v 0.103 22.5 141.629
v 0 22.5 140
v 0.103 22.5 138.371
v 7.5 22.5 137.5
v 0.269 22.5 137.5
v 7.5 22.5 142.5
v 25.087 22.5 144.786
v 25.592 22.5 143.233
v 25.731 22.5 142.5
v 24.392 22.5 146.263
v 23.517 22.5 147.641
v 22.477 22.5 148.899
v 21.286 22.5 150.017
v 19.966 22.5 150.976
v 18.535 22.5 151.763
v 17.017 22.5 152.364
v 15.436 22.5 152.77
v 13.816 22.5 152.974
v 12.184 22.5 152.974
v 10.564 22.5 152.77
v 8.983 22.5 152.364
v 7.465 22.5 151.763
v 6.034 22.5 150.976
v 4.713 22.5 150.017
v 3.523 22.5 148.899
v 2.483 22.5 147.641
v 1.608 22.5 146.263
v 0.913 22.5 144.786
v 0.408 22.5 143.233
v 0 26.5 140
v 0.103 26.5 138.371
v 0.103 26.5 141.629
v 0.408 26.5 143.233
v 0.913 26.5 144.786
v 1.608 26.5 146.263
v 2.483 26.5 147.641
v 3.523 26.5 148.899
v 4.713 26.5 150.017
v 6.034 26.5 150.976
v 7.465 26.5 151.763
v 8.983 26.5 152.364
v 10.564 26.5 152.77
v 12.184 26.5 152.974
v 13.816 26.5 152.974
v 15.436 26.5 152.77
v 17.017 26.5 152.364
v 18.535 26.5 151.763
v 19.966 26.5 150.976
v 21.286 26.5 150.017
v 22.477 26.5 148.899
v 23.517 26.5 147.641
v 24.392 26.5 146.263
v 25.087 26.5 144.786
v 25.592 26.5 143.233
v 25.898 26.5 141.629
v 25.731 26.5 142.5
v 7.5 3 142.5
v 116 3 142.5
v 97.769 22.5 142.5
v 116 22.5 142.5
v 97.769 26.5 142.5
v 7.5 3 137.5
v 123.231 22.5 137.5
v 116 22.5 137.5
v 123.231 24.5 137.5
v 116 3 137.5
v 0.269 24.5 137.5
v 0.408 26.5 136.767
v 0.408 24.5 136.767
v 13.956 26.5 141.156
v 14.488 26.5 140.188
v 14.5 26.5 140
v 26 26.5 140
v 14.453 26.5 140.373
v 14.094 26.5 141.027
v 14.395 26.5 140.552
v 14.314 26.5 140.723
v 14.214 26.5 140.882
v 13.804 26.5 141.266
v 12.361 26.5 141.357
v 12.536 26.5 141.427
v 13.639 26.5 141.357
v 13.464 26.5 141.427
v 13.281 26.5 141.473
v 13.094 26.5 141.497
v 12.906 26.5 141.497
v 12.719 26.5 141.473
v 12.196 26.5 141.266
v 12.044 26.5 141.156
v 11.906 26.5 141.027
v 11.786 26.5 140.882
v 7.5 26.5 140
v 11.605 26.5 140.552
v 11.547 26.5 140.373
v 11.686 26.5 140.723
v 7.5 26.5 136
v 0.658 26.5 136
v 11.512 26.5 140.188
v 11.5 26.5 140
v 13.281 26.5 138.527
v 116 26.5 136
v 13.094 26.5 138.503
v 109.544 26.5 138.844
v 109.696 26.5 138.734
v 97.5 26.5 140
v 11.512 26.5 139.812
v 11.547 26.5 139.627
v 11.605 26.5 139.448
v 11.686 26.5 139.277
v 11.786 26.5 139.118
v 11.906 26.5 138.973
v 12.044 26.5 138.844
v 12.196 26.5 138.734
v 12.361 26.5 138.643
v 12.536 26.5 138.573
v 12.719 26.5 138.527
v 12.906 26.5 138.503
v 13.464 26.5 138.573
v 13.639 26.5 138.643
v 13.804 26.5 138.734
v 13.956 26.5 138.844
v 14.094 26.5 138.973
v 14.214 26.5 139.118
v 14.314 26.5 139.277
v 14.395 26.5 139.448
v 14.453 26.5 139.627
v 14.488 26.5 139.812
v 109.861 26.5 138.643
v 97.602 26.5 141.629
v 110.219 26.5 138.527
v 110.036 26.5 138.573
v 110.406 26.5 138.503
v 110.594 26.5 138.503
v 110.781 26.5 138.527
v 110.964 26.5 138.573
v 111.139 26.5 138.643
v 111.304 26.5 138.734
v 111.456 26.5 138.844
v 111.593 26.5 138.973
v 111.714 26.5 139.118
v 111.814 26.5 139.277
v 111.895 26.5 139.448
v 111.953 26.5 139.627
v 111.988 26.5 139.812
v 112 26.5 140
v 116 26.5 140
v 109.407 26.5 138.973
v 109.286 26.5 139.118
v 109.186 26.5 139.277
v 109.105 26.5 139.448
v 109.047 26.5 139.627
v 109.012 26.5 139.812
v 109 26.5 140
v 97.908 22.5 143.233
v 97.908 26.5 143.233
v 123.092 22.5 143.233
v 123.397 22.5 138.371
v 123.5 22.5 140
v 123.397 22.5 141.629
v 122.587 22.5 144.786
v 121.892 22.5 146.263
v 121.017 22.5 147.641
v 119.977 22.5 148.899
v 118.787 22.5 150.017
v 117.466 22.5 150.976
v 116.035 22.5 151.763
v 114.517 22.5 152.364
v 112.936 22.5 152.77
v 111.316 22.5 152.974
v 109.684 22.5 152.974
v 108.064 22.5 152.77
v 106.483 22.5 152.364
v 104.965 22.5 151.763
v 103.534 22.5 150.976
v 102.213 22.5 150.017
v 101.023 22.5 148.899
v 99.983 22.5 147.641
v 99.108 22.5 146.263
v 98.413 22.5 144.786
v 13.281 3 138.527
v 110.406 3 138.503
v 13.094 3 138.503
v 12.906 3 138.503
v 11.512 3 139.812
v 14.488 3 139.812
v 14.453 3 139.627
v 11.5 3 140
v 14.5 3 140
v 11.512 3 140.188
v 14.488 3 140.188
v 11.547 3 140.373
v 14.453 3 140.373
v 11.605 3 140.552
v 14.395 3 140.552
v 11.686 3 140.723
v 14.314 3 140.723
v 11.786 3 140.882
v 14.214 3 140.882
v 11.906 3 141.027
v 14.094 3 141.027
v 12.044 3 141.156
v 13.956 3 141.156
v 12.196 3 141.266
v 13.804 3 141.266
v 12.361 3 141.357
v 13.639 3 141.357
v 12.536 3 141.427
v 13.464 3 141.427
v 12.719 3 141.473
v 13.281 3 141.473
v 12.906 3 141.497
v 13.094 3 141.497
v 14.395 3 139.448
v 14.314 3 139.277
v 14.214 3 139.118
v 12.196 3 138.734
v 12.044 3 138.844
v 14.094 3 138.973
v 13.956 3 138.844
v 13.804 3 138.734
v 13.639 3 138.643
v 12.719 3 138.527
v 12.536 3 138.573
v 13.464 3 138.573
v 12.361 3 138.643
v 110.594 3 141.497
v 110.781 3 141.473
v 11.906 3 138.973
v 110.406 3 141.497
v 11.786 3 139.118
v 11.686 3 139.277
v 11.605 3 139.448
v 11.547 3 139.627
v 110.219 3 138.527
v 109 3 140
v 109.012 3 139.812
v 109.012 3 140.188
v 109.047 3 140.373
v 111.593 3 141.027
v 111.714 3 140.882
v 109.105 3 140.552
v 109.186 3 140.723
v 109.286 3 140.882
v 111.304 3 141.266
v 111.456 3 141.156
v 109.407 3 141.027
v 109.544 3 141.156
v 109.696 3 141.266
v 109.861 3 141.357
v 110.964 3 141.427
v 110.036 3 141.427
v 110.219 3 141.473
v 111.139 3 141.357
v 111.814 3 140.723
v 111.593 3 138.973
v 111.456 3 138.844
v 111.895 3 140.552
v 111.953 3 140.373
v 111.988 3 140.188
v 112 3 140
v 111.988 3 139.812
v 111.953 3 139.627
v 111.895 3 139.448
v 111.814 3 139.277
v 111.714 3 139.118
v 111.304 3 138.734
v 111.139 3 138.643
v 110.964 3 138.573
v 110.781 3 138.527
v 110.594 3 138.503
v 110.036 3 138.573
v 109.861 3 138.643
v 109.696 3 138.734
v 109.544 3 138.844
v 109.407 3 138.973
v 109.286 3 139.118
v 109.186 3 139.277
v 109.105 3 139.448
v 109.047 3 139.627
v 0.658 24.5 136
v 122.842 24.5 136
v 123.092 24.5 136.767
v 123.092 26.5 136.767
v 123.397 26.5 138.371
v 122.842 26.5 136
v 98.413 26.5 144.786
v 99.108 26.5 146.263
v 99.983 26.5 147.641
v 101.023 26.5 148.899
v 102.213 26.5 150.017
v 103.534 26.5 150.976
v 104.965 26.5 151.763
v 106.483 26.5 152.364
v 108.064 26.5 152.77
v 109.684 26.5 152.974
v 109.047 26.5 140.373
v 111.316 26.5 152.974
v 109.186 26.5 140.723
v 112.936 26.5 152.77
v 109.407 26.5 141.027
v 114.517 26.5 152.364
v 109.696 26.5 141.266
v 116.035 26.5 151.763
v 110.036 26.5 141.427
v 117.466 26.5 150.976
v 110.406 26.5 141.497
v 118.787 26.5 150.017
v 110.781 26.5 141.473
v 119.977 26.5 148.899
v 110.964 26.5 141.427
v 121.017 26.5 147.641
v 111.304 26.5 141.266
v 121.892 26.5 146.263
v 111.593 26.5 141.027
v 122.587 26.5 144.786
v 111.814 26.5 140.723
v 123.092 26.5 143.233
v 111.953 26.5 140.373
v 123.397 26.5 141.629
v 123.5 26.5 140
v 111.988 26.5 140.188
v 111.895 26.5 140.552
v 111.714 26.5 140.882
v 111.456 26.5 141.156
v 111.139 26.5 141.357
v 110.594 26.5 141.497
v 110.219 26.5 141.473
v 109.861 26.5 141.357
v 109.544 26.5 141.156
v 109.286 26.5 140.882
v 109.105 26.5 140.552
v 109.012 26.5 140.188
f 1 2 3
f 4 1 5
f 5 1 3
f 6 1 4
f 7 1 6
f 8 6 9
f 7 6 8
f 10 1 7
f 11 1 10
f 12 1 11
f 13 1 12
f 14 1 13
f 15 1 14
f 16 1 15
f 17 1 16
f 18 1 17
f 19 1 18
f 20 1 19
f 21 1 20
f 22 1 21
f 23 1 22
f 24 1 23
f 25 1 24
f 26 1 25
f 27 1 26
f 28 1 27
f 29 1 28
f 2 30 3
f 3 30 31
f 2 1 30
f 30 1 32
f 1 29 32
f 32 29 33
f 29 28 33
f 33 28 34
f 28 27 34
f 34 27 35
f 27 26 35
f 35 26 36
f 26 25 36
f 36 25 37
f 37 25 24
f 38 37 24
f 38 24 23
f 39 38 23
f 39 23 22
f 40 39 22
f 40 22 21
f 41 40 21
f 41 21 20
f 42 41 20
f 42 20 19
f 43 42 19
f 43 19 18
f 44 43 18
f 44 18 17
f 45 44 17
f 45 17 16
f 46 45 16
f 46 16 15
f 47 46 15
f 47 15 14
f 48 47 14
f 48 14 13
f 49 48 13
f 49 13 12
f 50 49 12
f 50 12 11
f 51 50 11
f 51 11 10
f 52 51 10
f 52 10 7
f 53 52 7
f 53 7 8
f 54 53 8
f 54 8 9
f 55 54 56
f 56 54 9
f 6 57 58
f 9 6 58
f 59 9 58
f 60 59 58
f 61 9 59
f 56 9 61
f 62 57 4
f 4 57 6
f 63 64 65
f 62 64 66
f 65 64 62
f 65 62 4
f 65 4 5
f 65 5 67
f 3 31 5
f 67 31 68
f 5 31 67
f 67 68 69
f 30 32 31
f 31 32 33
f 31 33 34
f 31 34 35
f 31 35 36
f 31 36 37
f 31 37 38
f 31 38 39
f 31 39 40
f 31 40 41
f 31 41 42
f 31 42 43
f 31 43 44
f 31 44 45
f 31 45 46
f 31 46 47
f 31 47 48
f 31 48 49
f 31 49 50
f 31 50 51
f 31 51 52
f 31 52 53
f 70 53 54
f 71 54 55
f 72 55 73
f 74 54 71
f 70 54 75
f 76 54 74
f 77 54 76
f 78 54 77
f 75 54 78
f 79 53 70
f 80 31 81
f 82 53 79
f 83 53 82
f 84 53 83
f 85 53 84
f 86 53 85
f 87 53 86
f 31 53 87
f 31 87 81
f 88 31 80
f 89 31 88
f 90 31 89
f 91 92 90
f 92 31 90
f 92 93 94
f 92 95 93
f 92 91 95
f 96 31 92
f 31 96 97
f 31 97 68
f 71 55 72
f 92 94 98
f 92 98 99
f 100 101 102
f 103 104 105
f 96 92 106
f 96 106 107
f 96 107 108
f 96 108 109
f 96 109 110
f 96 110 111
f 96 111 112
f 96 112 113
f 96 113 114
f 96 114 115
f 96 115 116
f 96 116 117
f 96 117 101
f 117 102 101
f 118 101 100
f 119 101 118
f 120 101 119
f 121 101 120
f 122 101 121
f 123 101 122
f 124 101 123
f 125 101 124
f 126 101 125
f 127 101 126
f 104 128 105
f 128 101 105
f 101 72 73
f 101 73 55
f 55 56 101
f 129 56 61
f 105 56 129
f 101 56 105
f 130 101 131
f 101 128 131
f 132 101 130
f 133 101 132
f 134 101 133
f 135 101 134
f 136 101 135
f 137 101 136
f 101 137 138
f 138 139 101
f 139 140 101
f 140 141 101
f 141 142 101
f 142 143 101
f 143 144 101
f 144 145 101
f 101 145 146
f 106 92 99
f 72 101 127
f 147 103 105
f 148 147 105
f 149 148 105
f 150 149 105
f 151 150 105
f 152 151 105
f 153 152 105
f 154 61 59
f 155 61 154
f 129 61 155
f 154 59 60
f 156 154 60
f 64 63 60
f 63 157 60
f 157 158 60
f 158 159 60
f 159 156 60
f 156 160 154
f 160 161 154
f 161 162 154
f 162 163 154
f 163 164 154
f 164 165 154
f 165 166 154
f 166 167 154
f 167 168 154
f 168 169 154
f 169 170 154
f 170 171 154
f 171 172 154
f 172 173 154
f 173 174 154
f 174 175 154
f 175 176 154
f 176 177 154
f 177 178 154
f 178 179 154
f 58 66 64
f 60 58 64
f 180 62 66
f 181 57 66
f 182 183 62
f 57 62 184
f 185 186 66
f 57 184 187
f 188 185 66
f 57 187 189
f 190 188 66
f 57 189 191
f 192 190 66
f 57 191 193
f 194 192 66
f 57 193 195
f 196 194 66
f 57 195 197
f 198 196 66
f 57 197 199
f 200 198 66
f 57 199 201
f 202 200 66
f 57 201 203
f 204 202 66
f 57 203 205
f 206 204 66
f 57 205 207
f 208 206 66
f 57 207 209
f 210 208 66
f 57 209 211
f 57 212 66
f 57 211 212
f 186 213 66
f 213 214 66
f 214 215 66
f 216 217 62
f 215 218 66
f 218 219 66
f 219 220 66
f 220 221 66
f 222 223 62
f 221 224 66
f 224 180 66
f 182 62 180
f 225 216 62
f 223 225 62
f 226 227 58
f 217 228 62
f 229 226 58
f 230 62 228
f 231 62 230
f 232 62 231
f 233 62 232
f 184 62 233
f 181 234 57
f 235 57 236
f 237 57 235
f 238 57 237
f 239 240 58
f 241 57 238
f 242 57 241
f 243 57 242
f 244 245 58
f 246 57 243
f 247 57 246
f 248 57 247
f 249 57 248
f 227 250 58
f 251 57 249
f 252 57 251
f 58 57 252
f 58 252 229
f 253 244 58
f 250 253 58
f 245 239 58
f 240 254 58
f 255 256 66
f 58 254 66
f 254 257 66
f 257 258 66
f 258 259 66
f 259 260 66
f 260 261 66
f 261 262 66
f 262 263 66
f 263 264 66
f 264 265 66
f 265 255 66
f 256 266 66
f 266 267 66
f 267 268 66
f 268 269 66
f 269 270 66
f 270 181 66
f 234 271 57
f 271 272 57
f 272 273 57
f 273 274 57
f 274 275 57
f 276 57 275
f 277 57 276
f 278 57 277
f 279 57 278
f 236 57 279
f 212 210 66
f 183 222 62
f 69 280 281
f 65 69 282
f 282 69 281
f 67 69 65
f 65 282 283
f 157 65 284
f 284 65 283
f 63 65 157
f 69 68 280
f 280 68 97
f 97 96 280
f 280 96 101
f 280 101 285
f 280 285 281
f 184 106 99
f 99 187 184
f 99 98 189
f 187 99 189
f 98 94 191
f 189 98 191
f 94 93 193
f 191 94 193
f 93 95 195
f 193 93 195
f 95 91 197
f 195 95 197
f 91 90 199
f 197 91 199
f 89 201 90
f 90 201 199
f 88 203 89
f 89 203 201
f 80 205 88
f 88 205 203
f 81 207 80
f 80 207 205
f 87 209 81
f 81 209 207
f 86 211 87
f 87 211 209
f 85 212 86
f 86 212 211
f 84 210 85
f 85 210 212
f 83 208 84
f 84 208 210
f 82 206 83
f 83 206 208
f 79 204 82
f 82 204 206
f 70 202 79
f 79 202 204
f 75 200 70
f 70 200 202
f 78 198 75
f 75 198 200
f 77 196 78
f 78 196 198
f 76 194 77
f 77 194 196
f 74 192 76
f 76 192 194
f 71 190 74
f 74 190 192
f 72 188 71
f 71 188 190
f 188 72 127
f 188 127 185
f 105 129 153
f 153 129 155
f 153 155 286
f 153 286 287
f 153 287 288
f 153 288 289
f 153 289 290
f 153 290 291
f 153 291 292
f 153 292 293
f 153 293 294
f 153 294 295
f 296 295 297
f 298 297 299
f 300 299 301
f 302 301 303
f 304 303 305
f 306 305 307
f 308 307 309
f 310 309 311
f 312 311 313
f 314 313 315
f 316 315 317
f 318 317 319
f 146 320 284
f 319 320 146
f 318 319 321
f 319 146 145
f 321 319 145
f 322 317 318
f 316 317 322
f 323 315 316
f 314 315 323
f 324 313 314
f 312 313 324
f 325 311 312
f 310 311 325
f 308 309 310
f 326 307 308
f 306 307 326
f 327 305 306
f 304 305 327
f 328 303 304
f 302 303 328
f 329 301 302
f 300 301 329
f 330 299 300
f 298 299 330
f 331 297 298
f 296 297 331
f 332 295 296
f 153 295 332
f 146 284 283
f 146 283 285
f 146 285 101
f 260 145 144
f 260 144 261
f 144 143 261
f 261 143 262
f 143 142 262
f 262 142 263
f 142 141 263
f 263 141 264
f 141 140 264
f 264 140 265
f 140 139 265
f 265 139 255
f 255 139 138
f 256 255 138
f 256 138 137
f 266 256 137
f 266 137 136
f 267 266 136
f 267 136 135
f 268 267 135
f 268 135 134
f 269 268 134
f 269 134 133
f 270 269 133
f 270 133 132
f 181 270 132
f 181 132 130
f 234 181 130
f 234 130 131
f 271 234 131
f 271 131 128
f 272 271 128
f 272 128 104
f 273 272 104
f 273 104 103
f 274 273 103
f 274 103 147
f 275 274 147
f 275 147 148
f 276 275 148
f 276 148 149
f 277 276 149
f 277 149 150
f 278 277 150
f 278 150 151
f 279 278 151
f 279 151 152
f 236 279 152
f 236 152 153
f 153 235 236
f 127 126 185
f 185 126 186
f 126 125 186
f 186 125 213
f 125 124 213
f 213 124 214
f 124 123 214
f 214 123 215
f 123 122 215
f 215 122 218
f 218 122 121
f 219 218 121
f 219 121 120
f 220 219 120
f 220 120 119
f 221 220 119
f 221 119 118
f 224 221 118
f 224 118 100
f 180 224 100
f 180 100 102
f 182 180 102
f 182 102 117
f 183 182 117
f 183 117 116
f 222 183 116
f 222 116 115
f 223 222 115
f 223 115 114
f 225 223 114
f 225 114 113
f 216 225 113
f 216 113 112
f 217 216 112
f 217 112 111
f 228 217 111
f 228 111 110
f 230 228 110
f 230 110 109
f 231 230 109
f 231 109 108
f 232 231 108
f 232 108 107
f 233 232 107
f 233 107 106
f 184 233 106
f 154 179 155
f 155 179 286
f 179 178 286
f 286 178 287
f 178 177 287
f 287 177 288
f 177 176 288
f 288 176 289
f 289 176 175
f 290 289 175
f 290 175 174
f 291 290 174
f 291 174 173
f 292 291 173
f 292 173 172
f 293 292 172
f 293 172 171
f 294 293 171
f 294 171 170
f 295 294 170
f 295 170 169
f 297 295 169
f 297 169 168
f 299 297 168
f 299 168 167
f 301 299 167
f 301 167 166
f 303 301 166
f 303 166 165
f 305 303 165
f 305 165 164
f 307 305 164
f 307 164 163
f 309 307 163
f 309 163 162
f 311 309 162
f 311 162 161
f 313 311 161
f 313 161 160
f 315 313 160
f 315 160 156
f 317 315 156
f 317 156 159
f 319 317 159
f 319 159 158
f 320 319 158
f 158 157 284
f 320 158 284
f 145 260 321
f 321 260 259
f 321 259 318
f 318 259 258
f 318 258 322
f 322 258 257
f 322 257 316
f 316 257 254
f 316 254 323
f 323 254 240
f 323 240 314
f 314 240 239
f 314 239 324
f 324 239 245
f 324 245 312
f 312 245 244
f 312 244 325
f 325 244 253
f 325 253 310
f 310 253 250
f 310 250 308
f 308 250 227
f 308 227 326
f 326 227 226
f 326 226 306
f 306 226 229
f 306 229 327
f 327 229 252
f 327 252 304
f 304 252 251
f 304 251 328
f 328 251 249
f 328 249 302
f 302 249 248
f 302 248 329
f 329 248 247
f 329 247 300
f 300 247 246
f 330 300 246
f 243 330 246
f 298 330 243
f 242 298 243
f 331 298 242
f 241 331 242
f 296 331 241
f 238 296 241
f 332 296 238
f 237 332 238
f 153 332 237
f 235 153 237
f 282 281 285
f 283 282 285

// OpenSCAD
$fn = 50;

ra = 20;
rv = 30;

hia = 30;
bia = 17.0;
lia = 108.5;

sp = 3;

d = 3;

h = 150;
hl = 140;
b = bia + d + 2*sp;
l = lia + d + 2*sp;


ba = 7;
la = 10;

a1 = 4 + sp;
a2 = a1 + 33;
a3 = a2 + 54;

ang = 14;


spa = 2;
da = 0.7;

ro = 5;
bk = 5;
rs = 6/2;
rsb= 3.2/2;
lo = 75;

lls = 15;
angs = 8;

Wr = 8;

rla = 10;
rli = 1.7;
rlisd = 3;

rhla = 15;

anglh = 20;

%difference(){
	
	union(){
		rotate([angs,0,0]){
			difference(){
				cube([l+2*d,b+2*d,h+2*d]);
	
				translate([d,d,d]) cube([l,b+2*d,h+2*d]);
				translate([d+lls,-d,d]) cube([l-lls*2,b+2*d,h+2*d]);
	
			}
		}
		translate([0,-rla,rla]) rotate([0,90,0]) cylinder(r=rla,h=d);
		translate([0,-rla,0]) cube([d,rla,2*rla]);
		translate([lia+sp*2+d*2,-rla,rla]) rotate([0,90,0]) cylinder(r=rla,h=d);
		translate([lia+sp*2+d*2,-rla,0]) cube([d,rla,2*rla]);
		translate([0,-rhla,+h-d]) rotate([0,90,0]) cylinder(r=rhla,h=d);
		translate([0,-rhla,+h-d]) rotate([anglh+180,0,0])cube([d,rhla,3*rhla]);
		translate([lia+sp*2+d*2,-rhla,+h-d]) rotate([0,90,0]) cylinder(r=rhla,h=d);
		translate([lia+sp*2+d*2,-rhla,+h-d]) rotate([anglh+180,0,0])cube([d,rhla,3*rhla]);

	}
	translate([-1,-rla,rla]) rotate([0,90,0]) cylinder(r=rli,h=lia+sp*2+d*3+2);
	translate([-1,-rhla,h-d]) rotate([0,90,0]) cylinder(r=rli,h=lia+sp*2+d*3+2);
	translate([d,-rhla,+h-d]) rotate([0,90,0]) cylinder(r=rhla,h=lia+sp*3);

	translate([ra/2+d,-1,hl]) rotate([90,0,0]) cylinder(r=rlisd,h=h+d+2);
	translate([lia+sp*2+d*2-ra/2,-1,hl]) rotate([90,0,0]) cylinder(r=rlisd,h=h+d+2);

	translate([-d, 0, 0]) cube([l+4*d,b+4*d,h+4*d]);
}

%difference(){
	cube([l+2*d,b+2*d,h+2*d]);
	translate([d,d,d]) cube([l,b,h+2*d]);
	translate([d+ra,-2*d,rv-0.5*d]) cube([l-2*ra,b+sp+4*d,h+2*d]);
	translate([0,0,h+2*d]) rotate([ang,0,0]) translate([-d,0,-(h+2*d)])cube([l+4*d,b+2*d,h+2*d]);
	translate([ra/2+d,d+1,hl]) rotate([90,0,0]) cylinder(r=rli,h=d+2);
	translate([lia+sp*2+d*2-ra/2,d+1,hl]) rotate([90,0,0]) cylinder(r=rli,h=d+2);

	minkowski(){
		translate([2*d+Wr,2*d+Wr,-d]) cube([l-2*d-2*Wr,b-2*d-2*Wr,h+2*d]);
		cylinder(r=Wr, h=1);
	}
}

kd = 5;
kh = 21.5;
kkd = 2;
kkb = 1.5;
krl = 1.5;
kkr = 13;
kkh = 4;
color([1,0,0]){
	difference(){
		union(){
			translate([sp+d*1.5,d,140-kd/2-kkb]) cube([lia,kkd+kh,kd+kkb]);
			translate([ra/2+d,d+kh+kkd,140]) rotate([90,0,0]) cylinder(r=kkr,h=kkh);
			translate([lia+sp*2+d*2-ra/2,d+kh+kkd,140]) rotate([90,0,0]) cylinder(r=kkr,h=kkh);
		}
		translate([sp+d*1.5-1-kkr,d-1,140-kd/2-kkb-1-kkr]) #cube([lia+2+2*kkr,kh+1,kkb+1+kkr]);
		translate([sp+d*1.5-1-kkr,d-1+kh,140-kd/2-kkb*2-1-kkr]) #cube([lia+2+2*kkr,kd+1,kkb+1+kkr]);
		translate([ra/2+d,d+kh+1+kkd,140]) rotate([90,0,0]) #cylinder(r=krl,h=kh+2+kkd);
		translate([lia+sp*2+d*2-ra/2,d+kh+1+kkd,140]) rotate([90,0,0]) #cylinder(r=krl,h=kh+2+kkd);
	}
}
